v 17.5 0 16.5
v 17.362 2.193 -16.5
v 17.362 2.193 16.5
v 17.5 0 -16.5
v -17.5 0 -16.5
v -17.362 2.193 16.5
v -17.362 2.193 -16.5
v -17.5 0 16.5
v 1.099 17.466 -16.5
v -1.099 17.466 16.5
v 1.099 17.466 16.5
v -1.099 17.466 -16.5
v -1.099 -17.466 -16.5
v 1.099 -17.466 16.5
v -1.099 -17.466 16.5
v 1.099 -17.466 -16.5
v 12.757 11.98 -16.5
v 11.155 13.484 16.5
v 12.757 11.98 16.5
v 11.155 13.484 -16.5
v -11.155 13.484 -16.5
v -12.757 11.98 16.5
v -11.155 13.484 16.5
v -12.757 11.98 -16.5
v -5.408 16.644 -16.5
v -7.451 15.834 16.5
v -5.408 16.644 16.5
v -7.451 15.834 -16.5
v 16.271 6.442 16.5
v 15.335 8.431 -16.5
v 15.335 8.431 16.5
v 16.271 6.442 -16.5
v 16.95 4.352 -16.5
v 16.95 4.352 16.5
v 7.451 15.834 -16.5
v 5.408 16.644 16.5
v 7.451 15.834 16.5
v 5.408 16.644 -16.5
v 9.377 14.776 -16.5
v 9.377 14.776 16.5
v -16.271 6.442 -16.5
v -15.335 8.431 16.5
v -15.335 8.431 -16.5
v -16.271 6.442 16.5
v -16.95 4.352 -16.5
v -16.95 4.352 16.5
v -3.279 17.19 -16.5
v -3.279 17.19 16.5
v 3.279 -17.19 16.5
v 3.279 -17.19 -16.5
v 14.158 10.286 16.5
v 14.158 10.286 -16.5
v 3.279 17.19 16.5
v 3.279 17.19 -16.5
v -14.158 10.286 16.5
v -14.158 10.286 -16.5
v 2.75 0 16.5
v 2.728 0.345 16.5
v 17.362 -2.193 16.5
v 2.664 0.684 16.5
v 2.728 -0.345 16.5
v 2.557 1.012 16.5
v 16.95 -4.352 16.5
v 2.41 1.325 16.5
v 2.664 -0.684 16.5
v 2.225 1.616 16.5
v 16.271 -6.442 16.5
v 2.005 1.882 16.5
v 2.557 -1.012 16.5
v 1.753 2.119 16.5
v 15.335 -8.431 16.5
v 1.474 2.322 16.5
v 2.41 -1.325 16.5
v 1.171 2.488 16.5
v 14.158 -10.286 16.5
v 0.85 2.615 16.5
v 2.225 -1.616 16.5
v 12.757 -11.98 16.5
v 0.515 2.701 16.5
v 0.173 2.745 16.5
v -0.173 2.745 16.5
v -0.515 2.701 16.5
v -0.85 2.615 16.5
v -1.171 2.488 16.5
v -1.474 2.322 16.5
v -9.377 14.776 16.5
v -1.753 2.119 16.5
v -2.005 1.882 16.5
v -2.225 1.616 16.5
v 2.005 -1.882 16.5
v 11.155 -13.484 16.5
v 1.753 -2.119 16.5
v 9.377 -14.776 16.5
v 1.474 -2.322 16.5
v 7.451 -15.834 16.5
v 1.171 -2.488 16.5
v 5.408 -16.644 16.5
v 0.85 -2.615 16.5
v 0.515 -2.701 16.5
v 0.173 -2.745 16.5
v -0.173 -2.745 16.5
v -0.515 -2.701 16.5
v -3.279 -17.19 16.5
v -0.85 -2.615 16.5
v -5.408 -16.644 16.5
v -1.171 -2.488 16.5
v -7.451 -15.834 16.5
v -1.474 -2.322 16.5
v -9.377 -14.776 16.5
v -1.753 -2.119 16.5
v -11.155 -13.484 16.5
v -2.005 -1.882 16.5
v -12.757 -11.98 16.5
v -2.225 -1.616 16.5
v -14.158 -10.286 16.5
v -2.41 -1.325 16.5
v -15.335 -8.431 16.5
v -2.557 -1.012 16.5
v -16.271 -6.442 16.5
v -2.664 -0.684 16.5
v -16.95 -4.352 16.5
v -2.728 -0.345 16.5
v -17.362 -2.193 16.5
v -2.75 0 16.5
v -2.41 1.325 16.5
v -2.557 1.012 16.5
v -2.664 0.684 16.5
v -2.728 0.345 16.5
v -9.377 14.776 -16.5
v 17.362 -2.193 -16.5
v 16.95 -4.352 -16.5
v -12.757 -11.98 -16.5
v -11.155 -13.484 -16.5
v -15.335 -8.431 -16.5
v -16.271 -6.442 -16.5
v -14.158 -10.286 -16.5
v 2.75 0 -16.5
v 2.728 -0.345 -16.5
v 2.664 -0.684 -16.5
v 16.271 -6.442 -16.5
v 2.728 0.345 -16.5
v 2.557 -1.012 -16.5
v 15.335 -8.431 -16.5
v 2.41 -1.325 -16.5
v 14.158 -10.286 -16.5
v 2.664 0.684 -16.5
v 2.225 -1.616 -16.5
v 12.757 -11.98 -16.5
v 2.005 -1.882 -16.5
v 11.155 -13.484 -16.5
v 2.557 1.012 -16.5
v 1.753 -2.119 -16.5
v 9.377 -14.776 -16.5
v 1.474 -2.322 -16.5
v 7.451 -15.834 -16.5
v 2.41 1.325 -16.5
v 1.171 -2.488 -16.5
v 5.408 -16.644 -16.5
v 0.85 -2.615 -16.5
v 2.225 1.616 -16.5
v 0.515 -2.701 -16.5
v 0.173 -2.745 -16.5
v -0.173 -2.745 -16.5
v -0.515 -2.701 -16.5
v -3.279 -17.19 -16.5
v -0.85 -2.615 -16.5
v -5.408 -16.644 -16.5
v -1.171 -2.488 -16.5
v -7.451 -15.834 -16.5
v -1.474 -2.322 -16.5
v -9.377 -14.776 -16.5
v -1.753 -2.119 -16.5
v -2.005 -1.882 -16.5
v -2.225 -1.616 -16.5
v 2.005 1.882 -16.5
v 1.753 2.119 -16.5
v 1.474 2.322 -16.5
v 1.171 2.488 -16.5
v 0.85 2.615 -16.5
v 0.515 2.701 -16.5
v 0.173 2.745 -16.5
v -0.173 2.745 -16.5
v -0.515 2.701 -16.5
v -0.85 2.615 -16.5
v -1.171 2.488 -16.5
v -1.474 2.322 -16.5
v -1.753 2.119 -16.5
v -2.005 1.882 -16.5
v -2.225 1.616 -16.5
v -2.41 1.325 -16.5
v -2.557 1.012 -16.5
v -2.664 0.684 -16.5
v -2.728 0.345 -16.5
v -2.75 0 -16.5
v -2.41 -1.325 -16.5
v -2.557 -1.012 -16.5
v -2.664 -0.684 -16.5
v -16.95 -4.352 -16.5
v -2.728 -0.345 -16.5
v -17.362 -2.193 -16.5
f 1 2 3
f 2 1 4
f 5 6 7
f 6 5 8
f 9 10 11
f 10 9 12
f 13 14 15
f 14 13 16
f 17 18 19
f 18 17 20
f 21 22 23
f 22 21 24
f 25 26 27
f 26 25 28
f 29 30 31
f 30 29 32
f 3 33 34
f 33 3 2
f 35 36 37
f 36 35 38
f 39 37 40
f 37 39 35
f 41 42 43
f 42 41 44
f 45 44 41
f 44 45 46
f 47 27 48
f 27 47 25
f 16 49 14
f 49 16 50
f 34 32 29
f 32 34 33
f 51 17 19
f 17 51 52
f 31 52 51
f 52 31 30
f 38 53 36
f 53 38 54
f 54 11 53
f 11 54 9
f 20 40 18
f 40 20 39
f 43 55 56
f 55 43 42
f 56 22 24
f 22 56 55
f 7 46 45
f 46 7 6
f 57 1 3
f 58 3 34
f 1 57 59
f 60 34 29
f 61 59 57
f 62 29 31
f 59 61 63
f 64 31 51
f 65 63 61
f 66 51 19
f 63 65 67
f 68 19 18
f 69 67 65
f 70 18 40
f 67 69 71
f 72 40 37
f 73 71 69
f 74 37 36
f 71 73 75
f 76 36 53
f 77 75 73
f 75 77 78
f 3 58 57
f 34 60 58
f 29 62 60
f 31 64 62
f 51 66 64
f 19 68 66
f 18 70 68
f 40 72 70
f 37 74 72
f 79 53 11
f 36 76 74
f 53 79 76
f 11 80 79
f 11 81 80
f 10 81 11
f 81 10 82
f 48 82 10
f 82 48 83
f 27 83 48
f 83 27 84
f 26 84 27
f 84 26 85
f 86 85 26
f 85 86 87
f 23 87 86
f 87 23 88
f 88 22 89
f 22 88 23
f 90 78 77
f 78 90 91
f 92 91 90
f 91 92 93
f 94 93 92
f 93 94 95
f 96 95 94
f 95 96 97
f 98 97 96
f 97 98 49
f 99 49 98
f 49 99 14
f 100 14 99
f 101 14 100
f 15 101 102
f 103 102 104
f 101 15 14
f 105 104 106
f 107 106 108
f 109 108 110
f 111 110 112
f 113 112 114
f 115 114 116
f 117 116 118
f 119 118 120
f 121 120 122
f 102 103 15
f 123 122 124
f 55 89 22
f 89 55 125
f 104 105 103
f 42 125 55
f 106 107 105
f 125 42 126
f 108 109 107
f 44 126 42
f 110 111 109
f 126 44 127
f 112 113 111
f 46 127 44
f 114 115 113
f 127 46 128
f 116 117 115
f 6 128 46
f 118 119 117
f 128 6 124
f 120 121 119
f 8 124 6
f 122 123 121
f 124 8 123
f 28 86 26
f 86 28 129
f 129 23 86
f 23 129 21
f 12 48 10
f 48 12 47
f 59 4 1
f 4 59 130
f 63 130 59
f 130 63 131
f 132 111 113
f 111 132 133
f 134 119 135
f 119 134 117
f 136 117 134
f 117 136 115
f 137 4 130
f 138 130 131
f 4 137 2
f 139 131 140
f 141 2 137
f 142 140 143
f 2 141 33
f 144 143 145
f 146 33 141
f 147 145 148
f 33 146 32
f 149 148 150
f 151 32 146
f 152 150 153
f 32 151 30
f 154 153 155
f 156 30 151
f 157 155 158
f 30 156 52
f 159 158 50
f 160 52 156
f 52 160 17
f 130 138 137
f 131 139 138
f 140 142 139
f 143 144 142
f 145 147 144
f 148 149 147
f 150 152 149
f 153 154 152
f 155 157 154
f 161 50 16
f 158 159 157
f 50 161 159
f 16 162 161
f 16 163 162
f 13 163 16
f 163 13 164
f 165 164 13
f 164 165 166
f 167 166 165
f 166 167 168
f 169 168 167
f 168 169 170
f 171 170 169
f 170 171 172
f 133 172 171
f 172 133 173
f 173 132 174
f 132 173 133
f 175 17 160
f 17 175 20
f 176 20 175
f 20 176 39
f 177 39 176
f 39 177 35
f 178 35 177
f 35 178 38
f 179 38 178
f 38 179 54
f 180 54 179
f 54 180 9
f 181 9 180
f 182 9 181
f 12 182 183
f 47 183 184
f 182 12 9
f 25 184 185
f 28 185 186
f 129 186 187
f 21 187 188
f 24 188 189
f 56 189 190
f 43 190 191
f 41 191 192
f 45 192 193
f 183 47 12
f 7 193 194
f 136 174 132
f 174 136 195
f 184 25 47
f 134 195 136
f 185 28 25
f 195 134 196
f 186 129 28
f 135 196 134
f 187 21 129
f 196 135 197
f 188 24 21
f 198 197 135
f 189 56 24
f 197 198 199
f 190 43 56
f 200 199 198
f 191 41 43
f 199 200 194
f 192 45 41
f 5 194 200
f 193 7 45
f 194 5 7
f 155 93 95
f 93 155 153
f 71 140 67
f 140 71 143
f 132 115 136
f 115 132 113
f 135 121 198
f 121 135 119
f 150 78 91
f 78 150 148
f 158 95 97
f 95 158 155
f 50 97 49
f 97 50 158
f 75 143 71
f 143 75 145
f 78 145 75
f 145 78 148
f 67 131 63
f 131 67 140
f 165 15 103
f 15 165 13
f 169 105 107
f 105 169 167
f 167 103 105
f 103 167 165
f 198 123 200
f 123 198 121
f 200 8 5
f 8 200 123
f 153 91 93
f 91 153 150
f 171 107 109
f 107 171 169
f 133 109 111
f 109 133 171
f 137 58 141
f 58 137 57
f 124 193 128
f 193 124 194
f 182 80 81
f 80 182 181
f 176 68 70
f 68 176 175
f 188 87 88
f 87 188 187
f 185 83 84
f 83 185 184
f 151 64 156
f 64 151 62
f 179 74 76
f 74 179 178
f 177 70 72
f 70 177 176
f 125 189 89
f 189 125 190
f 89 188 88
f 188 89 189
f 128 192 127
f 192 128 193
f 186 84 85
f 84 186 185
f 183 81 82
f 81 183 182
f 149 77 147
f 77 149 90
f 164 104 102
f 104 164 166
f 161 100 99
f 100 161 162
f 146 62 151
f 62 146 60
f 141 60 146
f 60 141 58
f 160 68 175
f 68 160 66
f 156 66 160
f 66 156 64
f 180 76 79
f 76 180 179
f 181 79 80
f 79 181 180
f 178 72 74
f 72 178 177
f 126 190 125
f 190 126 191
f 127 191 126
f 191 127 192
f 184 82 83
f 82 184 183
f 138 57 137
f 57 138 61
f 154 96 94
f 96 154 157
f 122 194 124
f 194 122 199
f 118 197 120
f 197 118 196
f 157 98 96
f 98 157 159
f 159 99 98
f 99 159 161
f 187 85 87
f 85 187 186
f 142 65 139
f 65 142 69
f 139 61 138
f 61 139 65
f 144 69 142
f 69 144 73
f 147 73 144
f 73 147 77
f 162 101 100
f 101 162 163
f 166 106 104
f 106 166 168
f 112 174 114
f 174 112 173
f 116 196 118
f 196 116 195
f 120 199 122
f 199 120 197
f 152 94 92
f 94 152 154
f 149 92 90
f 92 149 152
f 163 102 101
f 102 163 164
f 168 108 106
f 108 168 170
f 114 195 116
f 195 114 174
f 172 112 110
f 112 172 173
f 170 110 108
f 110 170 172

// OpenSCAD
$fn = 50;


difference() {
	union() {
		translate(v = [0, 0, -16.5000000000]) {
			cylinder(h = 33, r = 17.5000000000);
		}
	}
	union() {
		translate(v = [0, 0, -100.0000000000]) {
			cylinder(h = 200, r = 2.7500000000);
		}
	}
}
